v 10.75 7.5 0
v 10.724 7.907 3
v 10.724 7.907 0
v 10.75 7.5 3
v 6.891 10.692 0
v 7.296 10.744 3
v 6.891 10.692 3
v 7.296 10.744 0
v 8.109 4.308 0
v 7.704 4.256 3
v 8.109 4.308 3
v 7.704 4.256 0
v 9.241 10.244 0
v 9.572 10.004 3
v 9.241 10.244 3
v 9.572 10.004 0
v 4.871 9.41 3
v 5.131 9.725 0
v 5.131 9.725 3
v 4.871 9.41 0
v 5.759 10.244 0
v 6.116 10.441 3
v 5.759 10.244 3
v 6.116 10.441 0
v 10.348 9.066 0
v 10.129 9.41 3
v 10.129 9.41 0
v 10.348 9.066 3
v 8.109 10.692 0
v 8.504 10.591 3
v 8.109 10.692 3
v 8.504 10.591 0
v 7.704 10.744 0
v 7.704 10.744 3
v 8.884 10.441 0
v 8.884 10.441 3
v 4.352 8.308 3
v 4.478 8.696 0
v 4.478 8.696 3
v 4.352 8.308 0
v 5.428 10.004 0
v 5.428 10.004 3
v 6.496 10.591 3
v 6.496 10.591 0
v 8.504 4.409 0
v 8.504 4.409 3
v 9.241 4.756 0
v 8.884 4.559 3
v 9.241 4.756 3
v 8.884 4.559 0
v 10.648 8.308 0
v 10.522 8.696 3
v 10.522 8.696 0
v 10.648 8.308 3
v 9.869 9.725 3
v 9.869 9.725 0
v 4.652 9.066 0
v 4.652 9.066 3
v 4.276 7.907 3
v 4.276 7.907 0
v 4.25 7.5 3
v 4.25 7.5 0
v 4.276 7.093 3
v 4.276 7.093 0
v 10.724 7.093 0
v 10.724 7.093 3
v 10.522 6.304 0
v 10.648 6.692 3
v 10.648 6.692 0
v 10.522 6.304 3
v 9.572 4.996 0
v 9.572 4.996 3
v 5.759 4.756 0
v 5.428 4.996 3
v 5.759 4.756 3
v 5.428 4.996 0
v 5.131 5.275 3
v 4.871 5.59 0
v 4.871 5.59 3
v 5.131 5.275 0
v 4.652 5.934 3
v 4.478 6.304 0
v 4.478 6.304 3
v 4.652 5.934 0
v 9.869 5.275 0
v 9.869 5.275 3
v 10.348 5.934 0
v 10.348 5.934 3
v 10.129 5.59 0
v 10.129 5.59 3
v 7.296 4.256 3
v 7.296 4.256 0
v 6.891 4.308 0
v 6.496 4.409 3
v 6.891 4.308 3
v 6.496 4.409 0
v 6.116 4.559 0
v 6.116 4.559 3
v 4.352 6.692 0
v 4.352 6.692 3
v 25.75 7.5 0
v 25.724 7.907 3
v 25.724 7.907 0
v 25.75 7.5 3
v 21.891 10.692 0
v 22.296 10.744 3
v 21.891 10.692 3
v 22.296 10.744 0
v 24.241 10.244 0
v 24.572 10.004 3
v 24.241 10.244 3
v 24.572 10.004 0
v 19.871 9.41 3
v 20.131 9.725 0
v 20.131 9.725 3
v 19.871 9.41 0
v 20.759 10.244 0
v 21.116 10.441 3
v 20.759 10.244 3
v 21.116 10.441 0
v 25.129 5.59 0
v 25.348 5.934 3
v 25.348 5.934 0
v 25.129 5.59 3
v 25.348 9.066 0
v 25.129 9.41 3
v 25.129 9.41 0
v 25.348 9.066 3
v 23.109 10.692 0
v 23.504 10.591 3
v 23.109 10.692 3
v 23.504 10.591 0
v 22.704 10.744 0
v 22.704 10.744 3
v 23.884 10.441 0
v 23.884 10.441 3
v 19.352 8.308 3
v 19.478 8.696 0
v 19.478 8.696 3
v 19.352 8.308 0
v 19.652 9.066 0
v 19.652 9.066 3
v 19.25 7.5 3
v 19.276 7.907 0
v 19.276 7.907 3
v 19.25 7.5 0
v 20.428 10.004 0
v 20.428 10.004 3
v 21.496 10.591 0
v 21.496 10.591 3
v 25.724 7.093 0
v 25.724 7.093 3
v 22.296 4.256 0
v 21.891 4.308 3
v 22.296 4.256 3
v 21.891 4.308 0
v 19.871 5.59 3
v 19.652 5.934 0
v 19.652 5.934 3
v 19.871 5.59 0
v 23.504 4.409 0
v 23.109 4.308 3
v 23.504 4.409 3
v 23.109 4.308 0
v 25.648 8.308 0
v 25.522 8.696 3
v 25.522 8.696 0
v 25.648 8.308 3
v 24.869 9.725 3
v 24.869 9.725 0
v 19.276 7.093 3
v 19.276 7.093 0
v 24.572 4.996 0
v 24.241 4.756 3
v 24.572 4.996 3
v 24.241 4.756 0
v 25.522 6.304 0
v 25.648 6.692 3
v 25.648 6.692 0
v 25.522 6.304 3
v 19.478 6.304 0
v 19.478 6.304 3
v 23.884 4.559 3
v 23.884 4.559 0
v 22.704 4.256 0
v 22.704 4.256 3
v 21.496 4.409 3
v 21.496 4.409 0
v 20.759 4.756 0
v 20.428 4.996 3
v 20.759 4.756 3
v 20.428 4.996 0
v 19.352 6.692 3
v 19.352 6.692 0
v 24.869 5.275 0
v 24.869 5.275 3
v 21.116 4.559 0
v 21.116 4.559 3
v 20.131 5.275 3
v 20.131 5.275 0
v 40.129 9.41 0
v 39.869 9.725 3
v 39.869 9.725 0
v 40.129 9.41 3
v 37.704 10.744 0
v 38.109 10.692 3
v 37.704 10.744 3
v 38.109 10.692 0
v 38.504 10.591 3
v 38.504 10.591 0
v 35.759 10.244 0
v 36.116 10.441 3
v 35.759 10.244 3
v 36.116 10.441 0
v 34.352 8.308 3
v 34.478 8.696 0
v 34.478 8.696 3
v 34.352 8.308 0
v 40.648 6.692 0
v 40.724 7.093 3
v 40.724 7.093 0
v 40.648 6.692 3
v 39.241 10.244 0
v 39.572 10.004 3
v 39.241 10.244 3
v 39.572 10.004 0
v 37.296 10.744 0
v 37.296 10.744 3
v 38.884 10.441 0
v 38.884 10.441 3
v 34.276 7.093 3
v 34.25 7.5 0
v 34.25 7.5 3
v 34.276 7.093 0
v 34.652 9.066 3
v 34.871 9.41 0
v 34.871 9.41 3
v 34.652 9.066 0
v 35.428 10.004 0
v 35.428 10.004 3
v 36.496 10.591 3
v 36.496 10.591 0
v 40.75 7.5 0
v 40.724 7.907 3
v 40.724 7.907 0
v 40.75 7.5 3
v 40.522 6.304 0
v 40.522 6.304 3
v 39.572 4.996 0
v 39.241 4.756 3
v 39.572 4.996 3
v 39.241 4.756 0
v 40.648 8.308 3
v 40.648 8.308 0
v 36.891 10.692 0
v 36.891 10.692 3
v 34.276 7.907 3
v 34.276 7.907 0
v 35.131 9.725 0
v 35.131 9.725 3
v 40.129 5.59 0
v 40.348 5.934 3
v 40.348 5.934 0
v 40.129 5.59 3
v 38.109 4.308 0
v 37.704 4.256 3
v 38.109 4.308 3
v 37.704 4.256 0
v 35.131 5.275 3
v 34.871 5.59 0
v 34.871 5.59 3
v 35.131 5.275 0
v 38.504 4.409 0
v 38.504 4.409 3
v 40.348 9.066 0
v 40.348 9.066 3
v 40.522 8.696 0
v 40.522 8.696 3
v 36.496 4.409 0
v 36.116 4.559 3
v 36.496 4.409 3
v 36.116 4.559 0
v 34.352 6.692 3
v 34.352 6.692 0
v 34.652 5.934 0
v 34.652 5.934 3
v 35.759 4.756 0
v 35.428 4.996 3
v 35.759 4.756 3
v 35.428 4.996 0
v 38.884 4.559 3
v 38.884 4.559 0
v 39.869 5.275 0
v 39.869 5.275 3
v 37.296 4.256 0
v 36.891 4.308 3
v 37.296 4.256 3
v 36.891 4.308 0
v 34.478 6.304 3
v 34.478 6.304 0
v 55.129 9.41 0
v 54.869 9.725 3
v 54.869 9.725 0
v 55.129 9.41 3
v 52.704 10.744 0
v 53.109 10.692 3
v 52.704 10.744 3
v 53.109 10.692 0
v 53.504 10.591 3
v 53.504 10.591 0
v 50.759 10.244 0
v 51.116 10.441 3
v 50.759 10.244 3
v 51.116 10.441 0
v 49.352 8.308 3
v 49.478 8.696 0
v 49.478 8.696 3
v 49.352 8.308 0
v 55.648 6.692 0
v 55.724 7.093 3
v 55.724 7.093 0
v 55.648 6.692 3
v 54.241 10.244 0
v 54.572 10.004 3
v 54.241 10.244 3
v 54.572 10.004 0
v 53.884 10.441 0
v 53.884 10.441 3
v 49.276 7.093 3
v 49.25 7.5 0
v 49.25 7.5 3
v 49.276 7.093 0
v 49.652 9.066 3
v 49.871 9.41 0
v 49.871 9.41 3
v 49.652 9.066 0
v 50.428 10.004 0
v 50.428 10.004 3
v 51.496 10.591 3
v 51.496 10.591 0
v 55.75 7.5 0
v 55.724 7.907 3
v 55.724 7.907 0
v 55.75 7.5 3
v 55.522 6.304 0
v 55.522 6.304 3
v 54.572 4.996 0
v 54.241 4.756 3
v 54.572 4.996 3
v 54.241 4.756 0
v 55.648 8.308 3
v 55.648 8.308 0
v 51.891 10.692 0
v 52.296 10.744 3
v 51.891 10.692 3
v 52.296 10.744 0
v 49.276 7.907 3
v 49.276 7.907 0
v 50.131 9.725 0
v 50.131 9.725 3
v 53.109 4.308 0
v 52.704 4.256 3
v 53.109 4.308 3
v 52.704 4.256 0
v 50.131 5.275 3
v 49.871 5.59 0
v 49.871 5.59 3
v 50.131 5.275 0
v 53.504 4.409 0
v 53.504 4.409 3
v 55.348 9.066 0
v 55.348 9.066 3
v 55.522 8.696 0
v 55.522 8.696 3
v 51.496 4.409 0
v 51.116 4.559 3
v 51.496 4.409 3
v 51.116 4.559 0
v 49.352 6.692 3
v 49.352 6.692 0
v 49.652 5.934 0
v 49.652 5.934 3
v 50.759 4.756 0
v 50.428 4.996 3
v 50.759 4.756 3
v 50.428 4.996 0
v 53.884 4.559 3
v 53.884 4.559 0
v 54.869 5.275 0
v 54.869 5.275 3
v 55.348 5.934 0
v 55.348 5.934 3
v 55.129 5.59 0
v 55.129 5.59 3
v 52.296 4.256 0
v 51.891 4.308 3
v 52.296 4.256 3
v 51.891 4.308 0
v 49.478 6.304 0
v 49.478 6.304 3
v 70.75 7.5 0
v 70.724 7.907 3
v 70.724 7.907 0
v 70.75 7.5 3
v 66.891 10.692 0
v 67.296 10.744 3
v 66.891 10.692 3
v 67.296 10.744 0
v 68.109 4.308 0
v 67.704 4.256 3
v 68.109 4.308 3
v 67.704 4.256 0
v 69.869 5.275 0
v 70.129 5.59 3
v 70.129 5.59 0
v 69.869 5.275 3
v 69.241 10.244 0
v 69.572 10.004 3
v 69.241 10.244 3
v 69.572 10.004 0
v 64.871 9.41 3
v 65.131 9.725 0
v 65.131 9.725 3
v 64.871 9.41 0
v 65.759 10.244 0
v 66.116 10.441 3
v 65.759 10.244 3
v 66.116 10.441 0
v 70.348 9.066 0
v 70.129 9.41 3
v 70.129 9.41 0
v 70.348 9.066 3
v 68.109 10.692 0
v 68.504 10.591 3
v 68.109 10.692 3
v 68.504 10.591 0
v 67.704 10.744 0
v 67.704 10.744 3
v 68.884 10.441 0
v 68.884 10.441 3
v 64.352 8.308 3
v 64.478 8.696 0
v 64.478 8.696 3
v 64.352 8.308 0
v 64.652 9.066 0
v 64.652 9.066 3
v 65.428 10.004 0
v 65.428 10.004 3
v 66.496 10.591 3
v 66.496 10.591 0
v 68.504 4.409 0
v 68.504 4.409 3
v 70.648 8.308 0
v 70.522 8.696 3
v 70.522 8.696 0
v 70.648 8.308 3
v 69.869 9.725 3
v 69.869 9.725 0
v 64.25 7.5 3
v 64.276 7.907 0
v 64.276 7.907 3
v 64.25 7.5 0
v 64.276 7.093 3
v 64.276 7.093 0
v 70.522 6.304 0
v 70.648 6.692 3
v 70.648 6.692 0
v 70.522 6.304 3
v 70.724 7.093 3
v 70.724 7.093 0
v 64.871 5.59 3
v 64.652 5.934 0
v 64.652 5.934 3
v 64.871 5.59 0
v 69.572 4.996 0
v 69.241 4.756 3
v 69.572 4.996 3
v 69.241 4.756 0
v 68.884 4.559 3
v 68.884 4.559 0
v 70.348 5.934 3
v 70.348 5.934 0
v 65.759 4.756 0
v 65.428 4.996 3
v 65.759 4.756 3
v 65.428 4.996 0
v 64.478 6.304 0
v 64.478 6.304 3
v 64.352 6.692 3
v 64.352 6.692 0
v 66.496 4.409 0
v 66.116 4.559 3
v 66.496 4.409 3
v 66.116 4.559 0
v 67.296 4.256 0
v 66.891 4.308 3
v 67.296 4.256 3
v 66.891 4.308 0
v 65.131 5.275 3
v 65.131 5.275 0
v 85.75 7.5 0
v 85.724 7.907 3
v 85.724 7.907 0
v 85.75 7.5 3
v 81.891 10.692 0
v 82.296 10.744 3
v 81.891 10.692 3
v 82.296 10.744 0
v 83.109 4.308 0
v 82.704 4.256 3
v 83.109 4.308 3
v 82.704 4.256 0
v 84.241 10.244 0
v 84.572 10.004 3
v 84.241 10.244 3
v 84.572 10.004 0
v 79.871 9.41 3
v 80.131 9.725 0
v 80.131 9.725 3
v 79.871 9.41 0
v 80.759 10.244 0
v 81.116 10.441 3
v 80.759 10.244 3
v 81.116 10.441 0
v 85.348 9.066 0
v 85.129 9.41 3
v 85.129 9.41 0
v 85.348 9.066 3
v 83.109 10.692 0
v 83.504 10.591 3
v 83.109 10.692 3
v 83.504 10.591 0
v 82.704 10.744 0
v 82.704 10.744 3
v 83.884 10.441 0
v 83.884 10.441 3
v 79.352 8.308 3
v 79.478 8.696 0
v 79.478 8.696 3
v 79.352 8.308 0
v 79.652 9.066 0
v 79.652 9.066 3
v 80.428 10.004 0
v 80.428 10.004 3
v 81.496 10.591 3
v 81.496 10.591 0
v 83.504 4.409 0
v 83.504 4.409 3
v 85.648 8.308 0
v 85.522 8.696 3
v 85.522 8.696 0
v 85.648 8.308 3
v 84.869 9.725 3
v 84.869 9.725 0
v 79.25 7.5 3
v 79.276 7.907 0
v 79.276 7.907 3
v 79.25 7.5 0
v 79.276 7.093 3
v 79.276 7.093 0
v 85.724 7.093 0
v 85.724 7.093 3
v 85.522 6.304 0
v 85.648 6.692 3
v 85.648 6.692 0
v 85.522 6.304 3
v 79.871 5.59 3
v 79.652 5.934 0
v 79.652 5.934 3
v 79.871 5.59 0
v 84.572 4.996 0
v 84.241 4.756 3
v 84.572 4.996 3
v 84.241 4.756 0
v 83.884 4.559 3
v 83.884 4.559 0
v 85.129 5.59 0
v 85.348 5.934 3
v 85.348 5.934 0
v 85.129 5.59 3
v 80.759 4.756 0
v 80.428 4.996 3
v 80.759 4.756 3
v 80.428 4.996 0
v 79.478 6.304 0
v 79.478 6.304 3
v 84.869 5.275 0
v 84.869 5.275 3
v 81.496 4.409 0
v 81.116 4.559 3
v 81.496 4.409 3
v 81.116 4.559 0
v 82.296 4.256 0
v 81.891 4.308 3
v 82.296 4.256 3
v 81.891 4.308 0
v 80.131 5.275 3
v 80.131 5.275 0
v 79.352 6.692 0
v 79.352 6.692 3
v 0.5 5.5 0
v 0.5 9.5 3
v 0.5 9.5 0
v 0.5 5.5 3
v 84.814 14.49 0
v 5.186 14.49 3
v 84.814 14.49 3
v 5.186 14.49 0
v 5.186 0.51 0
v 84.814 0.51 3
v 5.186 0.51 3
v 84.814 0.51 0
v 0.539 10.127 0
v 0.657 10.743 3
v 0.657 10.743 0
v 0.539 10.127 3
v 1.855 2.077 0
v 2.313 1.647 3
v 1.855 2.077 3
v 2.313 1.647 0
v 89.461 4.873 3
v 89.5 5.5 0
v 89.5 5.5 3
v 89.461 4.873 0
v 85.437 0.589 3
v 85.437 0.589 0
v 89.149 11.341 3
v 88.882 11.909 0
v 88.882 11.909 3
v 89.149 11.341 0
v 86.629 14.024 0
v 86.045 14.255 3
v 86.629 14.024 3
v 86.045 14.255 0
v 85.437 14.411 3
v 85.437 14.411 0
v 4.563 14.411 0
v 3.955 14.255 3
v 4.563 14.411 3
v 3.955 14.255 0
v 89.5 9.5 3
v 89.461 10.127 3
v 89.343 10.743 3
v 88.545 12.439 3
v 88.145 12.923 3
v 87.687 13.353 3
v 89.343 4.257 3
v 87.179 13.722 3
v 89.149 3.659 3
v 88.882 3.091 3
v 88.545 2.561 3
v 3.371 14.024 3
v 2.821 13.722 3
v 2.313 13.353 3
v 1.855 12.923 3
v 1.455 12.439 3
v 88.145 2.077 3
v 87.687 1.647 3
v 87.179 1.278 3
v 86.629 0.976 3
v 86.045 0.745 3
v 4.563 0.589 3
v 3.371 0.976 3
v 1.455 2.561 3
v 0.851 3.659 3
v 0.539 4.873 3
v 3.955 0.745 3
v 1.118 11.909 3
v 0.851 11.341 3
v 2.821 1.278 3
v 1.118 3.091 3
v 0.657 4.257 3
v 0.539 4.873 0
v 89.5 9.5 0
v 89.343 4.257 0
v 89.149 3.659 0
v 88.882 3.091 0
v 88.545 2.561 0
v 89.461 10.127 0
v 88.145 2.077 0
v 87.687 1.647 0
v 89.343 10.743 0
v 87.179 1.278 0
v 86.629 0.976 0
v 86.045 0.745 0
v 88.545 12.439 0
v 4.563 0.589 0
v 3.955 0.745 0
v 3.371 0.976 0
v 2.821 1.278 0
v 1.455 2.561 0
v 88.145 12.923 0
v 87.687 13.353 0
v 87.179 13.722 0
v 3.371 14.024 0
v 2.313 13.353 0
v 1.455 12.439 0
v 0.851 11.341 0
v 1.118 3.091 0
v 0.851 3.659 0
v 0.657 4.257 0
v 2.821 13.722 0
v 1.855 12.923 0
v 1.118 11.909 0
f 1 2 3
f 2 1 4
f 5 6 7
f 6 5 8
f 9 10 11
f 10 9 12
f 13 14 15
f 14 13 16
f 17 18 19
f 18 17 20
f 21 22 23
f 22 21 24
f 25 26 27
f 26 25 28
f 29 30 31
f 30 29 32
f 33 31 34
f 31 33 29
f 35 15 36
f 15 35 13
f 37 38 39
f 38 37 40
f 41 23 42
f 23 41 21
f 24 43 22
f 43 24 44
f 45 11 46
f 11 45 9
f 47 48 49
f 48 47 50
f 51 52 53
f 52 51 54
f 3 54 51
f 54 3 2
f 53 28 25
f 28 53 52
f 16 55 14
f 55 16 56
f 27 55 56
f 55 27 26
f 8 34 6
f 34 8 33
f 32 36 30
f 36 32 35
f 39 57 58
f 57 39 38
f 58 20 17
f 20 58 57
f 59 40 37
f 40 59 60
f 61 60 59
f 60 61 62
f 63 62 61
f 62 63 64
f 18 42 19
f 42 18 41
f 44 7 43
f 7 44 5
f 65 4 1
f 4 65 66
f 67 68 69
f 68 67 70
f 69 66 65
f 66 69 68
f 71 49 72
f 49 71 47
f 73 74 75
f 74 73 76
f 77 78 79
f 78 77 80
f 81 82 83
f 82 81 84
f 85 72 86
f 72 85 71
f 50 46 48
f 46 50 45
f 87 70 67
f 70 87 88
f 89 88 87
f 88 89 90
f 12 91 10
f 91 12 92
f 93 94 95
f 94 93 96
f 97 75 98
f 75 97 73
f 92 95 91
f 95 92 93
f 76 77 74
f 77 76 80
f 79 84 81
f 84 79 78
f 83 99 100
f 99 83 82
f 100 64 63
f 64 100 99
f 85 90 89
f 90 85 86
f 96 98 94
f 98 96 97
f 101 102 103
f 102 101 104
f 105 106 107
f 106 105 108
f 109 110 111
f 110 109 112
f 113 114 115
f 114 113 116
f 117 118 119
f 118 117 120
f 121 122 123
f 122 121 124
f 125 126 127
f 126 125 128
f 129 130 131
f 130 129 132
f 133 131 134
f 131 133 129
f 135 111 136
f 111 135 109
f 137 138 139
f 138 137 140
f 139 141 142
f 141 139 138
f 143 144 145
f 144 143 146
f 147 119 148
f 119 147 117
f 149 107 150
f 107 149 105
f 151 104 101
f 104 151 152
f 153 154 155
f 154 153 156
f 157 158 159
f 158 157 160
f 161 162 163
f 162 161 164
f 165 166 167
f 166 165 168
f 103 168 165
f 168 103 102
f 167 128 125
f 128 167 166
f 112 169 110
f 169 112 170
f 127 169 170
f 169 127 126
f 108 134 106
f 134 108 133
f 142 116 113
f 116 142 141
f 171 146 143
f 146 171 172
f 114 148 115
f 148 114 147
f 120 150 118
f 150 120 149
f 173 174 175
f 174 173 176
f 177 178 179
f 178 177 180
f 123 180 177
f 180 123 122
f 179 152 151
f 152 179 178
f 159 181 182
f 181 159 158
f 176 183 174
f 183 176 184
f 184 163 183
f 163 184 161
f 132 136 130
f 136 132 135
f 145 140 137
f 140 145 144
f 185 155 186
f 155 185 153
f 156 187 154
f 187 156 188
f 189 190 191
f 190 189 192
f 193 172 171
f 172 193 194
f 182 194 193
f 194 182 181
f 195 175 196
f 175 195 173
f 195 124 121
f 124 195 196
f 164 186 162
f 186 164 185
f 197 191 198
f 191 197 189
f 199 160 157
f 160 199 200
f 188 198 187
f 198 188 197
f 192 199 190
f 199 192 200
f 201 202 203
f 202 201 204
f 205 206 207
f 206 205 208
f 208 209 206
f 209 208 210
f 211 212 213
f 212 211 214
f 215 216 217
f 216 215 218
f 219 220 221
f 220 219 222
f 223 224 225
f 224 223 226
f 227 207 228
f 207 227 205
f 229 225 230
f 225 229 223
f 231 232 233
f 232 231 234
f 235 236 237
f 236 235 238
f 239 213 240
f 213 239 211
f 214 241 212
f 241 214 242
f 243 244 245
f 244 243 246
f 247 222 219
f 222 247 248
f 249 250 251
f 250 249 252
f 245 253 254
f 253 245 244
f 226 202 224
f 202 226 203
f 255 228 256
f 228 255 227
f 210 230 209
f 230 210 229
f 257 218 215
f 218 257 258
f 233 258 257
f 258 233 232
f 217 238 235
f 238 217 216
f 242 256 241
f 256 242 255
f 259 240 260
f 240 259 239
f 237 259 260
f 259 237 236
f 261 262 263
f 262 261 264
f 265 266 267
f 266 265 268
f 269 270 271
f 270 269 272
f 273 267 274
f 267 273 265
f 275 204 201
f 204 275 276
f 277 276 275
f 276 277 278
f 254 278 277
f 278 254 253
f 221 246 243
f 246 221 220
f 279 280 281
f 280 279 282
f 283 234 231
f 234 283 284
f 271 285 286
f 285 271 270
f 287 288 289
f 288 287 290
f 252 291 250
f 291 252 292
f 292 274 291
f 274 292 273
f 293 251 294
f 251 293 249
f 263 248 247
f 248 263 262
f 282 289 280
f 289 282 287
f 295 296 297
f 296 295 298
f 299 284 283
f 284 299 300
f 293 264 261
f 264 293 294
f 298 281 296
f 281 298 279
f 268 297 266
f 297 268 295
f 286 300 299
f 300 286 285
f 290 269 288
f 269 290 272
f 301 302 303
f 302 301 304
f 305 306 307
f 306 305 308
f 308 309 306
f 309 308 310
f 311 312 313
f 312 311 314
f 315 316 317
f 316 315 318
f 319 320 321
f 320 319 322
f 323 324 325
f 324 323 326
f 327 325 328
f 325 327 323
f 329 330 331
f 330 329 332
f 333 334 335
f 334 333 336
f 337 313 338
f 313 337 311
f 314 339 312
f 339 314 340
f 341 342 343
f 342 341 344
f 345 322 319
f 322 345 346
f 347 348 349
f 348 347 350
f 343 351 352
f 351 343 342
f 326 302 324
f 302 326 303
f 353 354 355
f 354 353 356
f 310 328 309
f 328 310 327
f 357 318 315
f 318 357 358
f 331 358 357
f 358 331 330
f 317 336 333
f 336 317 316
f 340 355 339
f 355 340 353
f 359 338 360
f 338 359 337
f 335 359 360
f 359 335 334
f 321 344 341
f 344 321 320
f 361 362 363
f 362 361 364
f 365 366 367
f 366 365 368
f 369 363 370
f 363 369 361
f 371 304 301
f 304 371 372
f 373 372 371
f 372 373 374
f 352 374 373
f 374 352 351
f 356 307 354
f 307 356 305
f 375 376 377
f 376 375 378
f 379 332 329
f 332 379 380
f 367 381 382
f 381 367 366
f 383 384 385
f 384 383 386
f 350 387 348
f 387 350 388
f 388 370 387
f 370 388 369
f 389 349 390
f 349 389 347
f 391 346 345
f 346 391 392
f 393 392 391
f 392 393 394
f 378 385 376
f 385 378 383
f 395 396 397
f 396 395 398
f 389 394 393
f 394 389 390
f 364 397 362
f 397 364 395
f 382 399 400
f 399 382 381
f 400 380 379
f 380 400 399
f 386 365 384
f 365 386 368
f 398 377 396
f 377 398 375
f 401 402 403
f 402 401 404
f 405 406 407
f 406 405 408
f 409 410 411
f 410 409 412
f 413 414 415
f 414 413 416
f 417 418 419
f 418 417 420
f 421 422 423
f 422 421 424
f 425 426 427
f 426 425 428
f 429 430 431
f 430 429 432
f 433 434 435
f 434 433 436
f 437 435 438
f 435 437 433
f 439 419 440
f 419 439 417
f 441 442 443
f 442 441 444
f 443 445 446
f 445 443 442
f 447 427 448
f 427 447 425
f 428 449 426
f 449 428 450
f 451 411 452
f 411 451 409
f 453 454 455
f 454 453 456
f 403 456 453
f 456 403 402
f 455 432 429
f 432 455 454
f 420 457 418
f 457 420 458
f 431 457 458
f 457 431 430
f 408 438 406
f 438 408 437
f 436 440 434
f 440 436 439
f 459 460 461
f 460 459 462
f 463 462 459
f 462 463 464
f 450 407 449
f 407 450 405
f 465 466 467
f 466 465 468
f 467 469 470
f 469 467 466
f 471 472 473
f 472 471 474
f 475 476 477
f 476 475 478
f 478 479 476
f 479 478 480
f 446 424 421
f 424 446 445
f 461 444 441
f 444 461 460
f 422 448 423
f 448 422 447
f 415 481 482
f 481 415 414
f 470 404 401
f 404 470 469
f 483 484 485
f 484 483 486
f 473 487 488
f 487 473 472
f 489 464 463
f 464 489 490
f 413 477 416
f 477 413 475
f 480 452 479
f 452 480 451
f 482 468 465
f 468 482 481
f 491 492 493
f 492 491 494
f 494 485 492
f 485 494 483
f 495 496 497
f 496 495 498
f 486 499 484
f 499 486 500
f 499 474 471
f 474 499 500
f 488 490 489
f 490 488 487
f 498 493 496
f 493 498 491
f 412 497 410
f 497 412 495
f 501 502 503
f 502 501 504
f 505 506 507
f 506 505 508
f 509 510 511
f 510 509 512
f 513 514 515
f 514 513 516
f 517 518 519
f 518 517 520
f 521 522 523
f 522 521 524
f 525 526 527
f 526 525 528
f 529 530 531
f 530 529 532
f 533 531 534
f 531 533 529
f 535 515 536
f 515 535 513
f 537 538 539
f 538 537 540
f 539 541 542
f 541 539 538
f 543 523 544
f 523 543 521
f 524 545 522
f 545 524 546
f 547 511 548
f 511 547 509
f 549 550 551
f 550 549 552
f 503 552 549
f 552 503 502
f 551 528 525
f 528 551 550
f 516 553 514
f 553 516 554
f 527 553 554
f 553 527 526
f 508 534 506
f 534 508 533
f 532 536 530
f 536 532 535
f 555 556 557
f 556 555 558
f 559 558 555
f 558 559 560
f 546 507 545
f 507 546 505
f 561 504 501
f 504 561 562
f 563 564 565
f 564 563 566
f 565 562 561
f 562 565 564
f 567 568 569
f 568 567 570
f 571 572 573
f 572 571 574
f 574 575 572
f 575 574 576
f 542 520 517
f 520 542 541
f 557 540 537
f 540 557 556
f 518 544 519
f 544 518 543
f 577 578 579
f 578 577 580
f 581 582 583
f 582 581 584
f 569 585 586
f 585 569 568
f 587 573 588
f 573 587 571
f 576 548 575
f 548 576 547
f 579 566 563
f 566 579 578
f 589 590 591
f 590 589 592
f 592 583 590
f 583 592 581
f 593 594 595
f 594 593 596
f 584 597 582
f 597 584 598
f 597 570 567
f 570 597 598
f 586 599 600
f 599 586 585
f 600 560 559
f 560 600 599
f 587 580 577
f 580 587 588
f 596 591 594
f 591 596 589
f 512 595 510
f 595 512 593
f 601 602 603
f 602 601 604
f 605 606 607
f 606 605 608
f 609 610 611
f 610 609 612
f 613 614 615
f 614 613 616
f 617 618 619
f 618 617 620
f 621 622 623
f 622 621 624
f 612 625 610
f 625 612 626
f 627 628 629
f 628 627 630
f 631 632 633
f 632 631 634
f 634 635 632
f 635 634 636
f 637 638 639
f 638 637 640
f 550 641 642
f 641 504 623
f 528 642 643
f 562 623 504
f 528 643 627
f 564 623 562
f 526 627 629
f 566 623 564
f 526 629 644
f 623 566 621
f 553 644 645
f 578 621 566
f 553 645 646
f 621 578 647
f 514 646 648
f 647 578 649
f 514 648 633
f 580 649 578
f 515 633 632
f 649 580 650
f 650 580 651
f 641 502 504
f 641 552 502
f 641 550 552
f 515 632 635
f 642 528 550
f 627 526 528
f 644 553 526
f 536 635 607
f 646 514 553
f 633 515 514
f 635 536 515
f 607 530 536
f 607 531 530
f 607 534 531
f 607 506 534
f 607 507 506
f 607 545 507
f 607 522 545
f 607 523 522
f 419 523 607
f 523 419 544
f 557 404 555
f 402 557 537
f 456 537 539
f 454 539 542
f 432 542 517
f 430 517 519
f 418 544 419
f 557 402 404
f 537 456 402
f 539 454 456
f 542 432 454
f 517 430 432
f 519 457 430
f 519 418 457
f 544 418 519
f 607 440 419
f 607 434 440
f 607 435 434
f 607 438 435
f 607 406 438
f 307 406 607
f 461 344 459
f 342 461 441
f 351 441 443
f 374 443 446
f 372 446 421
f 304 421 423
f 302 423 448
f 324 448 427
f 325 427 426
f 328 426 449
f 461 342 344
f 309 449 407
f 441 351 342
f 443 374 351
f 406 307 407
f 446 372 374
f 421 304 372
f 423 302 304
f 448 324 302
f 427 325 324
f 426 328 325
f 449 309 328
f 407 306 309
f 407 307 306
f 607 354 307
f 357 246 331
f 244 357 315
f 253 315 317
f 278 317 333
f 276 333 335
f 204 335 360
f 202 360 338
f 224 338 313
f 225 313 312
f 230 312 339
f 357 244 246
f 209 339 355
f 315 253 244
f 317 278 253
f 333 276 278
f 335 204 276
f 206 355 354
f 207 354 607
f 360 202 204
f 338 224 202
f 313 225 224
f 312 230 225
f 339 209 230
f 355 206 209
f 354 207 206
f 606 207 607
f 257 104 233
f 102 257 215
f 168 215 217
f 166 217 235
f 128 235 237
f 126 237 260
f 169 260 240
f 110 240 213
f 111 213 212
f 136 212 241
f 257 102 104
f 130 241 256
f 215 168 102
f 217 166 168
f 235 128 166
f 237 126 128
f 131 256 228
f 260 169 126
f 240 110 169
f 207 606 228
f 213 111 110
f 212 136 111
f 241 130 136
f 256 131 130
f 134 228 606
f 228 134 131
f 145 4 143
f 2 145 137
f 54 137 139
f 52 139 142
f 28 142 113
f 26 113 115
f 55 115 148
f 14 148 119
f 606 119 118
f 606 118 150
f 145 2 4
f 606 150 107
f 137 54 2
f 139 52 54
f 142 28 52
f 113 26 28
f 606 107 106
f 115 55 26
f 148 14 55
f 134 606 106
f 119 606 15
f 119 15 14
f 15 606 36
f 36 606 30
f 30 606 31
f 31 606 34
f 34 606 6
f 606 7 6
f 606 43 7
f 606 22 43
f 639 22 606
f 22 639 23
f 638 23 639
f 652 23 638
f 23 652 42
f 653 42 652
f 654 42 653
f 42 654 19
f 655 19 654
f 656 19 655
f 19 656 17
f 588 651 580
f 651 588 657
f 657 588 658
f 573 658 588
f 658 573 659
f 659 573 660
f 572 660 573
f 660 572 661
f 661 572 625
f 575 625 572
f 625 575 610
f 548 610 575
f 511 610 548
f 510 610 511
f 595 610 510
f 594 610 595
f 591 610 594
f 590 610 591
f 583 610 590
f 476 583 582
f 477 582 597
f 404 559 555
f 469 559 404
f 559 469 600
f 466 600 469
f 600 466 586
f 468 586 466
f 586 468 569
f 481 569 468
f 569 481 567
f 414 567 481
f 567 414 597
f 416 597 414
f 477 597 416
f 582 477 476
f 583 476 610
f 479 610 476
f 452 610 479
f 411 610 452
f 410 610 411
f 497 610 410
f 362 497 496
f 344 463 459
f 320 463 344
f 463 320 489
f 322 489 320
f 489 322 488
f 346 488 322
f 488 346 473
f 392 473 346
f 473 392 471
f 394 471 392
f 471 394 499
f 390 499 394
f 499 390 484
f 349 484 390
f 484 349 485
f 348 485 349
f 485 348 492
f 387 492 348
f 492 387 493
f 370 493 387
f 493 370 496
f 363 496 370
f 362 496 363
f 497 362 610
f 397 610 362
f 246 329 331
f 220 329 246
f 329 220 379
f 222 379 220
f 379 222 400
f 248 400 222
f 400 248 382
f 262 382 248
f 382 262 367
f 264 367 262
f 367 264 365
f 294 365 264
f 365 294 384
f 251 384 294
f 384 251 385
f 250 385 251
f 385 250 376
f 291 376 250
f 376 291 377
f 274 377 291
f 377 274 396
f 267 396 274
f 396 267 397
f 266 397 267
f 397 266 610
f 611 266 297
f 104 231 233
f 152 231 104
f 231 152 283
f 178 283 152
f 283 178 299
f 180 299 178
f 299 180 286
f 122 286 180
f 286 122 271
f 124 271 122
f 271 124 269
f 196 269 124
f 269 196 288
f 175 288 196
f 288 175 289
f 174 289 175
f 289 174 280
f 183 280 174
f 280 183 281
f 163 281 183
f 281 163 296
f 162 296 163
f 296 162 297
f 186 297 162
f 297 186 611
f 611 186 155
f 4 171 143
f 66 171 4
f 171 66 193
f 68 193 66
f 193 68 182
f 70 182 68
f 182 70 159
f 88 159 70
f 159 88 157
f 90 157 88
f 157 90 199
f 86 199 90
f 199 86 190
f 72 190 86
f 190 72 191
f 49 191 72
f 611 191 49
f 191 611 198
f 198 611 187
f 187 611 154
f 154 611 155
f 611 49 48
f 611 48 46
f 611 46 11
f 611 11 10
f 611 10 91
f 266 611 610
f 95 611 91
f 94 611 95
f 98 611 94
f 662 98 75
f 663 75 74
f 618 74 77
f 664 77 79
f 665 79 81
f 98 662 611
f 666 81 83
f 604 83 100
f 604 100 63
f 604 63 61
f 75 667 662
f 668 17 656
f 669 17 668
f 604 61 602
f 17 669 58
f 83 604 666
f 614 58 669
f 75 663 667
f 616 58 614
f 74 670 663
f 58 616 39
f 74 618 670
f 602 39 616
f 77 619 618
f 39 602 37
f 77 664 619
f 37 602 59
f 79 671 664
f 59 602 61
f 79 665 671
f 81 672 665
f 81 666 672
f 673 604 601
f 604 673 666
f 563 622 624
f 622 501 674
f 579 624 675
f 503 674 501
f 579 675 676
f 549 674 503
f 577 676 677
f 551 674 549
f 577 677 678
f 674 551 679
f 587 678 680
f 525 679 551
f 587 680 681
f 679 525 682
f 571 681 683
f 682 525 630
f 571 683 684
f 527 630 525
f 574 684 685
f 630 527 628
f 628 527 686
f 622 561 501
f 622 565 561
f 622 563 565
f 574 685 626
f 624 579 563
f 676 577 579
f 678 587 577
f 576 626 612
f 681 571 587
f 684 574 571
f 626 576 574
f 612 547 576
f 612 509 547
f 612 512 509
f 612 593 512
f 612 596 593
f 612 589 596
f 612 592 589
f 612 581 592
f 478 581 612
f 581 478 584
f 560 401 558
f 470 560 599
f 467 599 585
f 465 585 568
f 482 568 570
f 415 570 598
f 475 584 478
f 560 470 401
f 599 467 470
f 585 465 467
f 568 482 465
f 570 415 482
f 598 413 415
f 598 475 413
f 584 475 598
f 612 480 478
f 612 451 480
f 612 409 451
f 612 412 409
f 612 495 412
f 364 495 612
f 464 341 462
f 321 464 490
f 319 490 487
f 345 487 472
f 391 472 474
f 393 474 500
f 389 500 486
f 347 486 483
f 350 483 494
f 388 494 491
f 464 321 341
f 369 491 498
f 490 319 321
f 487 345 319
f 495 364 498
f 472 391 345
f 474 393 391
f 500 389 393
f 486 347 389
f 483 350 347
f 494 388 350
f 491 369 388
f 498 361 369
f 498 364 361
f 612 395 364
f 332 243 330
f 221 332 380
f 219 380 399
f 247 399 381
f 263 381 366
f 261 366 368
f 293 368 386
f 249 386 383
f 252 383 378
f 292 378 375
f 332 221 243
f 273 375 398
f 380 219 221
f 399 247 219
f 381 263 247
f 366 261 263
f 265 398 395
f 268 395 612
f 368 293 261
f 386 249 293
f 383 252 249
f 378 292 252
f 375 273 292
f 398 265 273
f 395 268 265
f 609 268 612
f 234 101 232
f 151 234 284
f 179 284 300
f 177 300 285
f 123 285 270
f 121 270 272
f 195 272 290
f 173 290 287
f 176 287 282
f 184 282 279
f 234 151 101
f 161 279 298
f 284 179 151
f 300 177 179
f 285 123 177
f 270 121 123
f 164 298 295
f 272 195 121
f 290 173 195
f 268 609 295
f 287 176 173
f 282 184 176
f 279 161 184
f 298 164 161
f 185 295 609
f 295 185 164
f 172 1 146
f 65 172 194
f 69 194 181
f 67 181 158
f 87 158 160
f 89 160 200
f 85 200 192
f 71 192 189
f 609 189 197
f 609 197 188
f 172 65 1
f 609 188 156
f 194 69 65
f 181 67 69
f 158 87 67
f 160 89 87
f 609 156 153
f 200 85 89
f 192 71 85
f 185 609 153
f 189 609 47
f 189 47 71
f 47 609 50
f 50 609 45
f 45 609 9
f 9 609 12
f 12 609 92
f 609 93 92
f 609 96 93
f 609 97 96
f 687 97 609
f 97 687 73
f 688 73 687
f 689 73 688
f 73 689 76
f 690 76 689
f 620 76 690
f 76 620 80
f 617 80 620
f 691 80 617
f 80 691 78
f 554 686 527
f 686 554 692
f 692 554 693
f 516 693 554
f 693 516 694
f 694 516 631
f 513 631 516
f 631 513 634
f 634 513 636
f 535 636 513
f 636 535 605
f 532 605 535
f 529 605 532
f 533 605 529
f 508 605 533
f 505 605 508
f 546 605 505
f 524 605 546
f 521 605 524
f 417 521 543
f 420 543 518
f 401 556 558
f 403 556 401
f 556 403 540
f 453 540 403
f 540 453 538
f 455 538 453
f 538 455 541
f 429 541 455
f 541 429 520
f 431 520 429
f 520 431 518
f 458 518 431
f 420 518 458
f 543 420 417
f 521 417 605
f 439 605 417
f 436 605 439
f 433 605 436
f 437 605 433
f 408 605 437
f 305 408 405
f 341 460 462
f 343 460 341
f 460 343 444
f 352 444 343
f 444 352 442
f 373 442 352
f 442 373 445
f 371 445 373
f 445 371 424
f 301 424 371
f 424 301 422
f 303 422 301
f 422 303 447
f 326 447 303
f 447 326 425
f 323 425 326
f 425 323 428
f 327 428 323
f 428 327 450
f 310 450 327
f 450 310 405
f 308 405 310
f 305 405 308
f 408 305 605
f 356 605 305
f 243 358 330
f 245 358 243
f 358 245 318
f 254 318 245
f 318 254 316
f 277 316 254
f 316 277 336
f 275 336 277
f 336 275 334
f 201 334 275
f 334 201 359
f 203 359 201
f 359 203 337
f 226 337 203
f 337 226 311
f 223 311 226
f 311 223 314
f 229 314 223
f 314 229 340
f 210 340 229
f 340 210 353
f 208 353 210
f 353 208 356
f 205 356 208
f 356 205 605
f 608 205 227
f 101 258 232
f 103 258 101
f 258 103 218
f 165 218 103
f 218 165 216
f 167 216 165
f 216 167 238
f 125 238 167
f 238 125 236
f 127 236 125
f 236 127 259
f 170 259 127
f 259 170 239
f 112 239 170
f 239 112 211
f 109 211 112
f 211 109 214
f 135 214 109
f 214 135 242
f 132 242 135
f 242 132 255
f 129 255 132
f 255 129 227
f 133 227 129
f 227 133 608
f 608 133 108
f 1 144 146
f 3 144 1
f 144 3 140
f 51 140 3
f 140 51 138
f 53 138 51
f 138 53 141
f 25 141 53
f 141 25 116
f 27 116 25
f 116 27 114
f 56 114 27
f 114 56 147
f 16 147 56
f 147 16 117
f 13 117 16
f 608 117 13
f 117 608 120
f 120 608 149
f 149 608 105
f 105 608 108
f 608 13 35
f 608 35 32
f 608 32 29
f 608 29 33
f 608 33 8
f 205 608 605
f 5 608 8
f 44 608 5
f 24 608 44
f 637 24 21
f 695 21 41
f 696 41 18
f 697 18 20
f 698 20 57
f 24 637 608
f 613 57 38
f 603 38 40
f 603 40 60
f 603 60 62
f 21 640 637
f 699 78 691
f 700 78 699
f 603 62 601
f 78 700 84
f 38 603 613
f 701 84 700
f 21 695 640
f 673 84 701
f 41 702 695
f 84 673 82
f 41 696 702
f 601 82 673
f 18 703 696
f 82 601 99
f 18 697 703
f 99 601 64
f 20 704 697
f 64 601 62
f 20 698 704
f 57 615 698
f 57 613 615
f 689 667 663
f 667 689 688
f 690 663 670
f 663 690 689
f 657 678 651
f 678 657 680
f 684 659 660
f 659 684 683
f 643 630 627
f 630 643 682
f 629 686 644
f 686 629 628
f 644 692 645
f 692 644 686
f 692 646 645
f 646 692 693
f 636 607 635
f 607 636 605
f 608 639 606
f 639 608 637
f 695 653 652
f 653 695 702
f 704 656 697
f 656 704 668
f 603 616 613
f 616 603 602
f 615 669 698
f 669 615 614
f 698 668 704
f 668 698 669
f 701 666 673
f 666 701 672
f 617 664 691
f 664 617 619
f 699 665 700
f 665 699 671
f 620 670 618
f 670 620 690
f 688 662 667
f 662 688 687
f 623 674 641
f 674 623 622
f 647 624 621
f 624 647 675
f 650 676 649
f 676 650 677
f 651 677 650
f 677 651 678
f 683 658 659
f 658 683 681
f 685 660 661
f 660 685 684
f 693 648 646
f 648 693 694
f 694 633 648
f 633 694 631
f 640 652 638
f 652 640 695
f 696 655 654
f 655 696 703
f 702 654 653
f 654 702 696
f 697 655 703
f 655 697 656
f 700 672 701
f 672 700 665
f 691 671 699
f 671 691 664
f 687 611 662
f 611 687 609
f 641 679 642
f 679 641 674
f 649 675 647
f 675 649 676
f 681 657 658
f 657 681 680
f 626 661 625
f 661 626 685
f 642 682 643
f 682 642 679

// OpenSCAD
// Generated by SolidPython 1.1.3 on 2023-01-09 15:11:46
$fn = 50;


difference() {
	union() {
		translate(v = [45.0000000000, 7.5000000000, 0]) {
			rotate(a = [0, 0, 0]) {
				hull() {
					translate(v = [-39.5000000000, 2.0000000000, 0]) {
						rotate(a = [0, 0, 0]) {
							translate(v = [0, 0, 0]) {
								rotate(a = [0, 0, 0]) {
									cylinder(h = 3, r = 5);
								}
							}
						}
					}
					translate(v = [39.5000000000, 2.0000000000, 0]) {
						rotate(a = [0, 0, 0]) {
							translate(v = [0, 0, 0]) {
								rotate(a = [0, 0, 0]) {
									cylinder(h = 3, r = 5);
								}
							}
						}
					}
					translate(v = [-39.5000000000, -2.0000000000, 0]) {
						rotate(a = [0, 0, 0]) {
							translate(v = [0, 0, 0]) {
								rotate(a = [0, 0, 0]) {
									cylinder(h = 3, r = 5);
								}
							}
						}
					}
					translate(v = [39.5000000000, -2.0000000000, 0]) {
						rotate(a = [0, 0, 0]) {
							translate(v = [0, 0, 0]) {
								rotate(a = [0, 0, 0]) {
									cylinder(h = 3, r = 5);
								}
							}
						}
					}
				}
			}
		}
	}
	union() {
		translate(v = [7.5000000000, 7.5000000000, 0]) {
			rotate(a = [0, 0, 0]) {
				translate(v = [0, 0, -50]) {
					rotate(a = [0, 0, 0]) {
						cylinder(h = 100, r = 3.2500000000);
					}
				}
			}
		}
		translate(v = [22.5000000000, 7.5000000000, 0]) {
			rotate(a = [0, 0, 0]) {
				translate(v = [0, 0, -50]) {
					rotate(a = [0, 0, 0]) {
						cylinder(h = 100, r = 3.2500000000);
					}
				}
			}
		}
		translate(v = [37.5000000000, 7.5000000000, 0]) {
			rotate(a = [0, 0, 0]) {
				translate(v = [0, 0, -50]) {
					rotate(a = [0, 0, 0]) {
						cylinder(h = 100, r = 3.2500000000);
					}
				}
			}
		}
		translate(v = [52.5000000000, 7.5000000000, 0]) {
			rotate(a = [0, 0, 0]) {
				translate(v = [0, 0, -50]) {
					rotate(a = [0, 0, 0]) {
						cylinder(h = 100, r = 3.2500000000);
					}
				}
			}
		}
		translate(v = [67.5000000000, 7.5000000000, 0]) {
			rotate(a = [0, 0, 0]) {
				translate(v = [0, 0, -50]) {
					rotate(a = [0, 0, 0]) {
						cylinder(h = 100, r = 3.2500000000);
					}
				}
			}
		}
		translate(v = [82.5000000000, 7.5000000000, 0]) {
			rotate(a = [0, 0, 0]) {
				translate(v = [0, 0, -50]) {
					rotate(a = [0, 0, 0]) {
						cylinder(h = 100, r = 3.2500000000);
					}
				}
			}
		}
	}
}
/***********************************************
*********      SolidPython code:      **********
************************************************
 
from solid import *
import os
import subprocess

import oomB

import opsc_library_gen

mode = "laser"
#mode = "3d_print"

defined_objects = {}

radius_dict = {}
countersunk_dict = {}


def set_mode(m):
    global mode
    mode = m
    radius_dict['M6'] = 6.5/2
    radius_dict['M3'] = 3.3/2
    if mode == "laser":
        radius_dict['M6'] = 6/2
        radius_dict['M3'] = 3/2

    countersunk_dict['M3'] = {}
    countersunk_dict['M3']['little_rad'] = radius_dict['M3']
    countersunk_dict['M3']['big_rad'] = (5.5+0.6)/2
    if mode == "laser":
        countersunk_dict['M3']['big_rad'] = (4.75+0.6)/2
        countersunk_dict['M3']['little_rad'] = (4.75+0.6)/2

    countersunk_dict['M3']['height'] = 1.7


def opsc_make_object(filename, objects, save_type="none",resolution=50, layers = 1, tilediff = 200, mode="laser"):
    set_mode(mode)
    save_type = save_type.lower()
    os.makedirs(os.path.dirname(filename), exist_ok=True)
    final_object = opsc_get_object(objects)
    # Save the final object to the specified filename    
    scad_render_to_file(final_object, filename, file_header='$fn = %s;' % resolution, include_orig_code=True)
    if mode == "laser":
        filename_laser = filename.replace(".scad","-flat.scad")
        scad_render_to_file(getLaser(final_object, layers=layers, tilediff=tilediff), filename_laser, file_header='$fn = %s;' % resolution, include_orig_code=True)
        if save_type == "all":
            saveToAll(filename_laser)
        elif save_type == "dxf":
            saveToDxf(filename_laser)
    if save_type == "all":
        saveToAll(filename)
    elif save_type == "dxf":
        saveToDxf(filename)


def opsc_get_object(objects):
    # Create the solidpython objects
    positive_objects = [get_opsc_item(obj) for obj in objects if obj['type'] == 'positive']
    negative_objects = [get_opsc_item(obj) for obj in objects if obj['type'] == 'negative']
    # Union the positive objects
    positive_object = union()(*positive_objects)
    # Union the negative objects
    negative_object = union()(*negative_objects)
    # Create the final object by subtracting the negative objects from the positive objects
    return difference()(positive_object, negative_object)

def get_opsc_item(params):
    # A dictionary to map radius string values to numerical values
    #radius_dict = {'small': 5, 'medium': 10, 'large': 15}
    # An array of function names for basic shapes
    basic_shapes = ['cube', 'sphere', 'cylinder']
    
    # An array of function names for other shapes
    other_shapes = ['hole', 'slot', 'rounded_rectangle', 'countersunk']
    


    # Convert radius to r if present, and remove radius from the params dictionary
    if 'radius' in params:
        if isinstance(params['radius'], str):
            # Use the radius_dict to map the radius string value to a numerical value
            params['r'] = radius_dict[params['radius']]
        else:
            params['r'] = params['radius']
        del params['radius']
    

    # Check if the object type is a basic shape
    if params['shape'] in basic_shapes:
        # Remove shape and unexpected dictionary values
        allowed_keys = {'size', 'r', 'r1', 'r2', 'd', 'h', 'rw', 'rh', 'dw', 'dh'}
        shape_params = {k: v for k, v in params.items() if k in allowed_keys}

        # Call the corresponding function for the shape parameter, using ** notation to pass the shape_params dictionary as keyword arguments
        return get_opsc_transform(params,globals()[params['shape']](**shape_params))
    
    # If the object type is not a basic shape, check if it's a defined object or one of the other shapes
    elif params['shape'] in other_shapes:
        # Call the corresponding function for the shape parameter, passing the params dictionary as an argument
        p2 = copy.deepcopy(params)
        p2["pos"] = [0,0,0]
        return get_opsc_transform(params,globals()[params['shape']](p2))
    
    # If the object is not a basic shape or a defined object, try to import it from a .scad file
    else:
        obj = defined_objects[params['shape']]
        return get_opsc_transform(params,obj)

def get_opsc_transform(params, solid_obj):
    # Rotate the object based on the 'rot' field in the params dictionary, or the 'rotX', 'rotY', and 'rotZ' fields if 'rot' is not present
    rot = params.get('rot', [])
    if rot:
        rotX, rotY, rotZ = rot
    else:
        rotX = params.get('rotX', 0)
        rotY = params.get('rotY', 0)
        rotZ = params.get('rotZ', 0)
    solid_obj = rotate([rotX, rotY, rotZ])(solid_obj)

    # Translate the object based on the 'pos' field in the params dictionary, or the 'x', 'y', and 'z' fields if 'pos' is not present
    pos = params.get('pos', [])
    if pos:
        x, y, z = pos
    else:
        x = params.get('x', 0)
        y = params.get('y', 0)
        z = params.get('z', 0)
    solid_obj = translate([x, y, z])(solid_obj)
    return solid_obj


import random

def opsc_easy_array(type, shape, repeats, pos_start, shift_arr, **kwargs):
    for i in range(0,3):
        repeats.append(1)
        pos_start.append(0)
        shift_arr.append(0)
    return_objects = []

    for x in range(0,repeats[0]):
        for y in range(0,repeats[1]):
            for z in range(0,repeats[2]):
                return_objects.append(opsc_easy(type, shape, pos=[pos_start[0]+x*shift_arr[0],pos_start[1]+y*shift_arr[1],pos_start[2]+z*shift_arr[2]], **kwargs))
    return return_objects                



def opsc_easy(type, shape, **kwargs):
    obj = {
        'type': type,
        'shape': shape
    }
    for param in ['size', 'r', 'r1', 'r2', 'd', 'h', 'rw', 'rh', 'dw', 'dh', 'pos', 'x', 'y', 'z', 'rot', 'rotX', 'rotY', 'rotZ', "w"]:
        if param in kwargs:
            obj[param] = kwargs[param]
    return obj

def hole(params):
    p2 = copy.deepcopy(params)  
    # Check if the radius is a string and replace it with the corresponding value from the dictionary
    if isinstance(p2['r'], str):
        p2['r'] = radius_dict[p2['r']]
    
    # Set the height to 100 if not specified
    if 'h' not in p2:
        p2['h'] = 100
        p2["pos"] = [0,0,-50]
    p2["center"] = True
    # Create the cylinder object
    p2["shape"] = "cylinder"
    p2["type"] = "positive"

    return get_opsc_item(p2)

import copy

def countersunk(params):
    p2 = copy.deepcopy(params)
    counter_rad = p2['r']
    p2['r'] = radius_dict[p2['r']]
    hp = copy.deepcopy(p2)
    hp["type"] = "positive"
    hp["shape"] = "hole"
    del hp["rot"]
    hol = get_opsc_item(hp)
    
    cp = copy.deepcopy(p2)
    cp["h"] = countersunk_dict[counter_rad]["height"]
    cp["r2"] = countersunk_dict[counter_rad]["little_rad"]
    cp["r1"] = countersunk_dict[counter_rad]["big_rad"]
    del cp["r"]
    del cp["rot"]
    cp["type"] = "positive"
    cp["shape"] = "cylinder"
    cp["pos"] = [0,0,0]

    top = get_opsc_item(cp)
    return union()(hol,top)



def slot(params):  
    p2 = copy.deepcopy(params) 
    if isinstance(p2['r'], str):
        p2['r'] = radius_dict[p2['r']]
    p2["type"] = "positive"
    p2["shape"] = "hole"
    del p2["rot"]
    p2["pos"] = [0,0,0]
    left = copy.deepcopy(p2)
    right = copy.deepcopy(p2)
    left["pos"][0] = p2["w"] / 2 - p2["r"] 
    
    right["pos"][0] = -p2["w"] / 2 + p2["r"] 
    pass
    leftObj = get_opsc_item(left)
    rightObj = get_opsc_item(right)
    return hull()(leftObj, rightObj)

def rounded_rectangle(params):   
    p2 = copy.deepcopy(params) 
    p2["h"] = p2["size"][2]
    p2["pos"] = p2.get("pos", [0, 0, 0]) 
    p2["type"] = "positive"
    p2["shape"] = "hole"
    p2["pos"] = [0,0,0]
    
    if 'rot' in p2:
        del p2["rot"]   
    if 'r' not in p2:
        p2["r"] = 5 
    tl = copy.deepcopy(p2)
    tr = copy.deepcopy(p2)
    bl = copy.deepcopy(p2)
    br = copy.deepcopy(p2)
    tl["pos"][0] = -(p2["size"][0] - p2["r"]*2)/2
    tl["pos"][1] = (p2["size"][1] - p2["r"]*2)/2
    tr["pos"][0] = (p2["size"][0] - p2["r"]*2)/2
    tr["pos"][1] = (p2["size"][1] - p2["r"]*2)/2
    bl["pos"][0] = -(p2["size"][0] - p2["r"]*2)/2
    bl["pos"][1] = -(p2["size"][1] - p2["r"]*2)/2
    br["pos"][0] = (p2["size"][0] - p2["r"]*2)/2
    br["pos"][1] = -(p2["size"][1] - p2["r"]*2)/2
    del tl["size"]
    del tr["size"]
    del bl["size"]
    del br["size"]
    tlo = get_opsc_item(tl)
    tro = get_opsc_item(tr)
    blo = get_opsc_item(bl)
    bro = get_opsc_item(br)    
    return hull()(tlo, tro, blo, bro)



def import_scad_object(filename):
    # Import the .scad file and convert it to a solidpython object
    #filename = "parts"
    obj = import_scad(filename)
    return obj.main()
    


import os
import solid as solidpython

# A dictionary to store the defined objects


def load_scad_objects():
    opsc_library_gen.gen_library(defined_objects)

import random

def test(num_objects):
    objects = []
    for i in range(num_objects):
        # Choose a random shape
        #shape = random.choice(['cube', 'sphere', 'cylinder', 'hole', 'slot', "rounded_rectangle"])
        shape = random.choice(["rounded_rectangle"])

        # Choose a random type
        type = random.choice(['positive', 'negative'])
        
        # Create an empty object dictionary
        obj = {'shape': shape, 'type': type}
        
        # Set shape-specific parameters
        if obj['shape'] in ['cube']:
            obj['size'] =  [random.uniform(5, 15), random.uniform(5, 15), random.uniform(5, 15)]
        if obj['shape'] in ['rounded_rectangle']:
            obj['size'] =  [random.uniform(5, 15), random.uniform(5, 15), random.uniform(5, 15)]
            obj['r'] = random.uniform(0.5, 5)
        elif obj['shape'] == 'sphere':
            obj['r'] = random.uniform(5, 15)
        elif obj['shape'] in ['cylinder', 'hole']:
            obj['r'] = random.uniform(0.5, 5)
            obj['h'] = random.uniform(5, 15)
        elif obj['shape'] == 'slot':
            obj['r'] = random.uniform(0.5, 5)
            obj['h'] = random.uniform(5, 15)
            obj['w'] = random.uniform(5, 15)
        
        # Set a random position and rotation
        obj['pos'] = [random.uniform(-20, 20), random.uniform(-20, 20), random.uniform(-20, 20)]
        obj['rot'] = [random.uniform(-180, 180), random.uniform(-180, 180), random.uniform(-180, 180)]
        
        # Add the object to the list
        objects.append(obj)
    return objects

####### old file saving
def saveToAll(fileIn):
    saveToDxf(fileIn)
    saveToPng(fileIn)
    saveToStl(fileIn)
    saveToSvg(fileIn)

def saveToDxf(fileIn, fileOut="", copy_to_laser=True):
    if fileOut == "":
        fileOut = fileIn.replace(".scad",".dxf")
    saveToFile(fileIn, fileOut)


    
def saveToPng(fileIn, fileOut="",extra="--render"):
    if fileOut == "":
        fileOut = fileIn.replace(".scad",".png")
    saveToFile(fileIn, fileOut)

def saveToStl(fileIn, fileOut=""):
    if fileOut == "":
        fileOut = fileIn.replace(".scad",".stl")
    saveToFile(fileIn, fileOut)
    
def saveToSvg(fileIn, fileOut=""):
    if fileOut == "":
        fileOut = fileIn.replace(".scad",".svg")
    saveToFile(fileIn, fileOut)

def saveToFile(fileIn, fileOut,extra=""):
    #extra = extra + " --colorscheme Tomorrow"

    launchStr = 'openscad -o "' + fileOut + '"' + extra + ' "' + fileIn + '"'
    if ".png" in fileOut:
        launchStr = launchStr + " --render"
    print("            saveToFile launch string: " + launchStr)
    subprocess.run(launchStr)
    x=0

def getLaser(final_object,start=1.5,layers=1,thickness=3,tilediff=200):
        rv= []

        for x in range(layers):
            rv.append(translate([0,x*tilediff,0])(
                    projection()(
                        intersection()(translate([-500,-500,start+x*thickness])(cube(size=[1000,1000,0.1])),
                            final_object
                        )
                    )
            )
            )
            
        return union()(rv)

set_mode("laser")
load_scad_objects() 
 
************************************************/
